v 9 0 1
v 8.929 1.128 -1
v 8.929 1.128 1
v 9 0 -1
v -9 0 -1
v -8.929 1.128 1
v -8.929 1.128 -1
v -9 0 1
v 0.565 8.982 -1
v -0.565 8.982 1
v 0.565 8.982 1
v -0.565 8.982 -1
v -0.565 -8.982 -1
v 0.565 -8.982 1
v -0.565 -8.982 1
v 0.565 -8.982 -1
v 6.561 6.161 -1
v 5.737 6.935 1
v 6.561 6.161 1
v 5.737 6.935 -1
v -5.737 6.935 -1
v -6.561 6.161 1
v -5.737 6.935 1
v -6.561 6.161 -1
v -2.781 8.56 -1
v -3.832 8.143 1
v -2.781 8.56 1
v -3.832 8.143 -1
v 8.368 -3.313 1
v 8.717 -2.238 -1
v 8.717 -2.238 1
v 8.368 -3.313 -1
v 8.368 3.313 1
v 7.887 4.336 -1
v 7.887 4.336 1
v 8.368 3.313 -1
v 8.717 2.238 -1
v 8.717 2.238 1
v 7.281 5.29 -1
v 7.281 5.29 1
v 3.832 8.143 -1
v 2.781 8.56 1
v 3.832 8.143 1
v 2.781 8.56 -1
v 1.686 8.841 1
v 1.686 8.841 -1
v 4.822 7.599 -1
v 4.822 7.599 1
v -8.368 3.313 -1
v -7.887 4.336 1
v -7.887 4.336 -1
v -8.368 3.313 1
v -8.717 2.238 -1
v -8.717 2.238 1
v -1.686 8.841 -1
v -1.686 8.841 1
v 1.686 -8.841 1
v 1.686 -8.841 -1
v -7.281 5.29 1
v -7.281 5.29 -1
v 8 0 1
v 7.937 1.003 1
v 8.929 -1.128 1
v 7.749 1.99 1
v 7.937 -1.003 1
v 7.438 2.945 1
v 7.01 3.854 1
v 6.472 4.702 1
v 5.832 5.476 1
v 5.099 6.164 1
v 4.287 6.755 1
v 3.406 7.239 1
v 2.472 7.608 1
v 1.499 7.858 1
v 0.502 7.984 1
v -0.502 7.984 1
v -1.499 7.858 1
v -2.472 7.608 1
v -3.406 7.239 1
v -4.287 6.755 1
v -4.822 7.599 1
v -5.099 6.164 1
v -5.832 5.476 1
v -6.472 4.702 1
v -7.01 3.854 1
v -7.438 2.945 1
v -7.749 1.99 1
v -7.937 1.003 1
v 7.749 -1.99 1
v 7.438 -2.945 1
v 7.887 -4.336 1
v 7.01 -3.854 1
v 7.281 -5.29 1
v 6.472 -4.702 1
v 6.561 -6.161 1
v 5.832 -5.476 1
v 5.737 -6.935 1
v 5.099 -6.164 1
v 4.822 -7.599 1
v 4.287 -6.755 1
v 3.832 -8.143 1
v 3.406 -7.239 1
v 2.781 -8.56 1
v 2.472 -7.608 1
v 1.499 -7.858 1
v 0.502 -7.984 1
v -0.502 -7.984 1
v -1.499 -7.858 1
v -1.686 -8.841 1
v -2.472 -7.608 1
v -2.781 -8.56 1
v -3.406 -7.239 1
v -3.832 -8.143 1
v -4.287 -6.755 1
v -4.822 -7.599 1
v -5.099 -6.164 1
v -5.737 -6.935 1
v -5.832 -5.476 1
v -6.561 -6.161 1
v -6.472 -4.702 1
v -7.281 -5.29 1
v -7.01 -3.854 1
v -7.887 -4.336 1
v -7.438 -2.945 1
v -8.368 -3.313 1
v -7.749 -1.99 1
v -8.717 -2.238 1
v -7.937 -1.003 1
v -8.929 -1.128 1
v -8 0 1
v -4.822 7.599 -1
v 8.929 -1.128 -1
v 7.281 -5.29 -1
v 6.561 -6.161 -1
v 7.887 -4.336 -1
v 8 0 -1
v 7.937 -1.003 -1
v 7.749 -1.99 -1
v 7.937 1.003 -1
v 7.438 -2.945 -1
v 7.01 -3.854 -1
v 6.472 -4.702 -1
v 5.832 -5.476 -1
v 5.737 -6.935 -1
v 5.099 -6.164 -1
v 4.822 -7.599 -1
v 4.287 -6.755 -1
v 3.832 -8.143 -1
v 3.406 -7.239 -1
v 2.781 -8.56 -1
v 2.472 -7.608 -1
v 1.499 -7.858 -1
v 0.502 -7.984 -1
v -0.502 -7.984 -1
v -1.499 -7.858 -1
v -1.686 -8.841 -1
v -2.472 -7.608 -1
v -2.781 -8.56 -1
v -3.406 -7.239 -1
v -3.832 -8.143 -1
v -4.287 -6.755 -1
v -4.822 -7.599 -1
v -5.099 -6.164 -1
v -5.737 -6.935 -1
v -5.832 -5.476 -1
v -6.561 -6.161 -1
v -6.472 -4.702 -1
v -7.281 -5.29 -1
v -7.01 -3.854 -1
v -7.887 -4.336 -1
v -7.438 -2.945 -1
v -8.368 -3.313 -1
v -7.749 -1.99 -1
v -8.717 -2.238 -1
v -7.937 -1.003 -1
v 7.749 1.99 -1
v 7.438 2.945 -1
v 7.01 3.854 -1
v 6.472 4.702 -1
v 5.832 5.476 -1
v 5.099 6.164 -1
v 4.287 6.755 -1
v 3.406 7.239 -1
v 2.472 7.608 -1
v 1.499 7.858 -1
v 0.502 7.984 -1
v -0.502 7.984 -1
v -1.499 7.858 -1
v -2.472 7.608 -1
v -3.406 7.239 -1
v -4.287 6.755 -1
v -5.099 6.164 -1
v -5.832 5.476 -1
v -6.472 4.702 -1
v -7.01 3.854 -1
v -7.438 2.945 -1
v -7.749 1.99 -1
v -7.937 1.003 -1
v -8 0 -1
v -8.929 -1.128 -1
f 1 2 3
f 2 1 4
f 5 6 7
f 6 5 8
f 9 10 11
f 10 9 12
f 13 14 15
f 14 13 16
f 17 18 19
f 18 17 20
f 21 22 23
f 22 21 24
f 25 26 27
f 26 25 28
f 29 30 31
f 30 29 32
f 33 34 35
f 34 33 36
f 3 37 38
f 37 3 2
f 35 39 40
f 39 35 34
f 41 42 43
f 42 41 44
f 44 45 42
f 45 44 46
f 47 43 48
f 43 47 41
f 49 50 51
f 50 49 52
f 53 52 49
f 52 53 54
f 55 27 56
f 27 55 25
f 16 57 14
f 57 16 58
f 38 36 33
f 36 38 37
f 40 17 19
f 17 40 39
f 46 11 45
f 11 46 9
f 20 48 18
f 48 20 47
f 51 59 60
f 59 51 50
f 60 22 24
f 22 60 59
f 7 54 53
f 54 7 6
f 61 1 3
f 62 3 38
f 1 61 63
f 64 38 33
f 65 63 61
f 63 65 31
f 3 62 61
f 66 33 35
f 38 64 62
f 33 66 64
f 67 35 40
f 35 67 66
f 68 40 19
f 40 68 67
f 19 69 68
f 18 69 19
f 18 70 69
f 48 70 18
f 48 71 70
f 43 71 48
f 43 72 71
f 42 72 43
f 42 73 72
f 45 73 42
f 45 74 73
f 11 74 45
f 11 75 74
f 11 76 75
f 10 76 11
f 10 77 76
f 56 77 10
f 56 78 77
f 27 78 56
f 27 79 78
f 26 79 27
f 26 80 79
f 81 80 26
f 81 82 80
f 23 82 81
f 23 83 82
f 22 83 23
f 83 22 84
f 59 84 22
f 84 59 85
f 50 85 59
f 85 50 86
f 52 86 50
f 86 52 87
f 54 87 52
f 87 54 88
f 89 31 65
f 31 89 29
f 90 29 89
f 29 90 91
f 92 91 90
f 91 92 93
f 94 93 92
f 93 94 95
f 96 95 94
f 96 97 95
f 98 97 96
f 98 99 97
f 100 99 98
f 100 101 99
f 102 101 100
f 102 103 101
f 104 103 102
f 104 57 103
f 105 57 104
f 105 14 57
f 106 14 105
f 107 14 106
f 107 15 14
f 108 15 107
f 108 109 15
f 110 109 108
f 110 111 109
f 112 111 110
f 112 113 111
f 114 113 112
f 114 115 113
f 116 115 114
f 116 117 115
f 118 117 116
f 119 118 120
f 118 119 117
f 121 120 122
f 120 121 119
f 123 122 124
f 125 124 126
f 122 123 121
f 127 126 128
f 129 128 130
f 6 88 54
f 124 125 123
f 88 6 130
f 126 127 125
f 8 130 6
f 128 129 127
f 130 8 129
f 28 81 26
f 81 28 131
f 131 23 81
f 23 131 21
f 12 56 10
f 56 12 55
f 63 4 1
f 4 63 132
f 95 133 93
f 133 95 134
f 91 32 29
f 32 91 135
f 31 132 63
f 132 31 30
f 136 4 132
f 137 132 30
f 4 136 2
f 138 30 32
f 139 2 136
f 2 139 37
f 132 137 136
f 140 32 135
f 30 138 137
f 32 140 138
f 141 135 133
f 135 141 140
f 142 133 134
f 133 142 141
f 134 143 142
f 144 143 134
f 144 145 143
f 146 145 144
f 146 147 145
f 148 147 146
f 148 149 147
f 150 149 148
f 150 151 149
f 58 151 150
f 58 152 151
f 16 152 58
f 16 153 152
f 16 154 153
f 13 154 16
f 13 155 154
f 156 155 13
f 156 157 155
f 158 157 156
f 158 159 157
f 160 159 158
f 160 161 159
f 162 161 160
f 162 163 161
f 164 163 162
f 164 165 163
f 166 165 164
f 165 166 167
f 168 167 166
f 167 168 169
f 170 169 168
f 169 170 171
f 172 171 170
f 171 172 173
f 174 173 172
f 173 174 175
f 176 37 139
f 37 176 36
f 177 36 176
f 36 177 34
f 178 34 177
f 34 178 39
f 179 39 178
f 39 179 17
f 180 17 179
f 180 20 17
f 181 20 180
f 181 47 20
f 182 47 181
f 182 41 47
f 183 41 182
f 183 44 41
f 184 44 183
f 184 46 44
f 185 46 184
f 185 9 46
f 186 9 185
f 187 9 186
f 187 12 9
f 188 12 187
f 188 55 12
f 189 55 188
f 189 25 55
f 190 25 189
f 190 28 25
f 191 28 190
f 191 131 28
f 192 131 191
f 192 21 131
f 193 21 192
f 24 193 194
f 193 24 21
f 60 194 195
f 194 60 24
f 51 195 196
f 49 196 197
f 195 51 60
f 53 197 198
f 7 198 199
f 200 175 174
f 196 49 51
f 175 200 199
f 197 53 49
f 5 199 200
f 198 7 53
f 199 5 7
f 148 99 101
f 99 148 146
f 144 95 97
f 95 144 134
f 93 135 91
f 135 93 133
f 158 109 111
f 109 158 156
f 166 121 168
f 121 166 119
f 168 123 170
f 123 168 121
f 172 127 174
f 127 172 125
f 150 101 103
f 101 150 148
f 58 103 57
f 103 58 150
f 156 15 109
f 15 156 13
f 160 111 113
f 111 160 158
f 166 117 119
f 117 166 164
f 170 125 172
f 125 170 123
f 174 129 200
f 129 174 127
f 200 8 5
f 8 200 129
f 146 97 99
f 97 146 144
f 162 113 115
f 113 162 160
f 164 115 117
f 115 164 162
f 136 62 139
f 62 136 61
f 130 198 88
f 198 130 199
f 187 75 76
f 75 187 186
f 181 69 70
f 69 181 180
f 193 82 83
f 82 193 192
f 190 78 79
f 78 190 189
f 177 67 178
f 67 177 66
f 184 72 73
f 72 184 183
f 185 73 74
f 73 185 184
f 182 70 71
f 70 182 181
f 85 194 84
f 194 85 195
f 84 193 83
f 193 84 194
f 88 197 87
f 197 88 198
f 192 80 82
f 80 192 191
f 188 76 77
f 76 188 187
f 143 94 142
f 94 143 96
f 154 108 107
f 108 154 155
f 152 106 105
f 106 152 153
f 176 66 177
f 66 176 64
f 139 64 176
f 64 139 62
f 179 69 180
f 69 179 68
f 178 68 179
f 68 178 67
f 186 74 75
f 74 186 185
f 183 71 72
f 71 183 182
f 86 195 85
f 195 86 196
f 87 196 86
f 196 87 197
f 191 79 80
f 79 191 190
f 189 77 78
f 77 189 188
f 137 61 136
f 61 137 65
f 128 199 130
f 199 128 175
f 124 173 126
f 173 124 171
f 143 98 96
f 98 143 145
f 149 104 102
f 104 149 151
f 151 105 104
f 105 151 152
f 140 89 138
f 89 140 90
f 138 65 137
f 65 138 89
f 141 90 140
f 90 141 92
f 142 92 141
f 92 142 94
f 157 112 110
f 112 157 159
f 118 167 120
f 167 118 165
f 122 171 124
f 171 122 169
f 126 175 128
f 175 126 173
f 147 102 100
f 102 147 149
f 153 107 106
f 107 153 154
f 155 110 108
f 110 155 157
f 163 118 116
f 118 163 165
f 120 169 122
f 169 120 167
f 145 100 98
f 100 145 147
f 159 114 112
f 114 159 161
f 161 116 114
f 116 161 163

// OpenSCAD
$fn = 50;


difference() {
	union() {
		translate(v = [0, 0, -1.0000000000]) {
			cylinder(h = 2, r = 9.0000000000);
		}
	}
	union() {
		translate(v = [0, 0, -100.0000000000]) {
			cylinder(h = 200, r = 8);
		}
	}
}
